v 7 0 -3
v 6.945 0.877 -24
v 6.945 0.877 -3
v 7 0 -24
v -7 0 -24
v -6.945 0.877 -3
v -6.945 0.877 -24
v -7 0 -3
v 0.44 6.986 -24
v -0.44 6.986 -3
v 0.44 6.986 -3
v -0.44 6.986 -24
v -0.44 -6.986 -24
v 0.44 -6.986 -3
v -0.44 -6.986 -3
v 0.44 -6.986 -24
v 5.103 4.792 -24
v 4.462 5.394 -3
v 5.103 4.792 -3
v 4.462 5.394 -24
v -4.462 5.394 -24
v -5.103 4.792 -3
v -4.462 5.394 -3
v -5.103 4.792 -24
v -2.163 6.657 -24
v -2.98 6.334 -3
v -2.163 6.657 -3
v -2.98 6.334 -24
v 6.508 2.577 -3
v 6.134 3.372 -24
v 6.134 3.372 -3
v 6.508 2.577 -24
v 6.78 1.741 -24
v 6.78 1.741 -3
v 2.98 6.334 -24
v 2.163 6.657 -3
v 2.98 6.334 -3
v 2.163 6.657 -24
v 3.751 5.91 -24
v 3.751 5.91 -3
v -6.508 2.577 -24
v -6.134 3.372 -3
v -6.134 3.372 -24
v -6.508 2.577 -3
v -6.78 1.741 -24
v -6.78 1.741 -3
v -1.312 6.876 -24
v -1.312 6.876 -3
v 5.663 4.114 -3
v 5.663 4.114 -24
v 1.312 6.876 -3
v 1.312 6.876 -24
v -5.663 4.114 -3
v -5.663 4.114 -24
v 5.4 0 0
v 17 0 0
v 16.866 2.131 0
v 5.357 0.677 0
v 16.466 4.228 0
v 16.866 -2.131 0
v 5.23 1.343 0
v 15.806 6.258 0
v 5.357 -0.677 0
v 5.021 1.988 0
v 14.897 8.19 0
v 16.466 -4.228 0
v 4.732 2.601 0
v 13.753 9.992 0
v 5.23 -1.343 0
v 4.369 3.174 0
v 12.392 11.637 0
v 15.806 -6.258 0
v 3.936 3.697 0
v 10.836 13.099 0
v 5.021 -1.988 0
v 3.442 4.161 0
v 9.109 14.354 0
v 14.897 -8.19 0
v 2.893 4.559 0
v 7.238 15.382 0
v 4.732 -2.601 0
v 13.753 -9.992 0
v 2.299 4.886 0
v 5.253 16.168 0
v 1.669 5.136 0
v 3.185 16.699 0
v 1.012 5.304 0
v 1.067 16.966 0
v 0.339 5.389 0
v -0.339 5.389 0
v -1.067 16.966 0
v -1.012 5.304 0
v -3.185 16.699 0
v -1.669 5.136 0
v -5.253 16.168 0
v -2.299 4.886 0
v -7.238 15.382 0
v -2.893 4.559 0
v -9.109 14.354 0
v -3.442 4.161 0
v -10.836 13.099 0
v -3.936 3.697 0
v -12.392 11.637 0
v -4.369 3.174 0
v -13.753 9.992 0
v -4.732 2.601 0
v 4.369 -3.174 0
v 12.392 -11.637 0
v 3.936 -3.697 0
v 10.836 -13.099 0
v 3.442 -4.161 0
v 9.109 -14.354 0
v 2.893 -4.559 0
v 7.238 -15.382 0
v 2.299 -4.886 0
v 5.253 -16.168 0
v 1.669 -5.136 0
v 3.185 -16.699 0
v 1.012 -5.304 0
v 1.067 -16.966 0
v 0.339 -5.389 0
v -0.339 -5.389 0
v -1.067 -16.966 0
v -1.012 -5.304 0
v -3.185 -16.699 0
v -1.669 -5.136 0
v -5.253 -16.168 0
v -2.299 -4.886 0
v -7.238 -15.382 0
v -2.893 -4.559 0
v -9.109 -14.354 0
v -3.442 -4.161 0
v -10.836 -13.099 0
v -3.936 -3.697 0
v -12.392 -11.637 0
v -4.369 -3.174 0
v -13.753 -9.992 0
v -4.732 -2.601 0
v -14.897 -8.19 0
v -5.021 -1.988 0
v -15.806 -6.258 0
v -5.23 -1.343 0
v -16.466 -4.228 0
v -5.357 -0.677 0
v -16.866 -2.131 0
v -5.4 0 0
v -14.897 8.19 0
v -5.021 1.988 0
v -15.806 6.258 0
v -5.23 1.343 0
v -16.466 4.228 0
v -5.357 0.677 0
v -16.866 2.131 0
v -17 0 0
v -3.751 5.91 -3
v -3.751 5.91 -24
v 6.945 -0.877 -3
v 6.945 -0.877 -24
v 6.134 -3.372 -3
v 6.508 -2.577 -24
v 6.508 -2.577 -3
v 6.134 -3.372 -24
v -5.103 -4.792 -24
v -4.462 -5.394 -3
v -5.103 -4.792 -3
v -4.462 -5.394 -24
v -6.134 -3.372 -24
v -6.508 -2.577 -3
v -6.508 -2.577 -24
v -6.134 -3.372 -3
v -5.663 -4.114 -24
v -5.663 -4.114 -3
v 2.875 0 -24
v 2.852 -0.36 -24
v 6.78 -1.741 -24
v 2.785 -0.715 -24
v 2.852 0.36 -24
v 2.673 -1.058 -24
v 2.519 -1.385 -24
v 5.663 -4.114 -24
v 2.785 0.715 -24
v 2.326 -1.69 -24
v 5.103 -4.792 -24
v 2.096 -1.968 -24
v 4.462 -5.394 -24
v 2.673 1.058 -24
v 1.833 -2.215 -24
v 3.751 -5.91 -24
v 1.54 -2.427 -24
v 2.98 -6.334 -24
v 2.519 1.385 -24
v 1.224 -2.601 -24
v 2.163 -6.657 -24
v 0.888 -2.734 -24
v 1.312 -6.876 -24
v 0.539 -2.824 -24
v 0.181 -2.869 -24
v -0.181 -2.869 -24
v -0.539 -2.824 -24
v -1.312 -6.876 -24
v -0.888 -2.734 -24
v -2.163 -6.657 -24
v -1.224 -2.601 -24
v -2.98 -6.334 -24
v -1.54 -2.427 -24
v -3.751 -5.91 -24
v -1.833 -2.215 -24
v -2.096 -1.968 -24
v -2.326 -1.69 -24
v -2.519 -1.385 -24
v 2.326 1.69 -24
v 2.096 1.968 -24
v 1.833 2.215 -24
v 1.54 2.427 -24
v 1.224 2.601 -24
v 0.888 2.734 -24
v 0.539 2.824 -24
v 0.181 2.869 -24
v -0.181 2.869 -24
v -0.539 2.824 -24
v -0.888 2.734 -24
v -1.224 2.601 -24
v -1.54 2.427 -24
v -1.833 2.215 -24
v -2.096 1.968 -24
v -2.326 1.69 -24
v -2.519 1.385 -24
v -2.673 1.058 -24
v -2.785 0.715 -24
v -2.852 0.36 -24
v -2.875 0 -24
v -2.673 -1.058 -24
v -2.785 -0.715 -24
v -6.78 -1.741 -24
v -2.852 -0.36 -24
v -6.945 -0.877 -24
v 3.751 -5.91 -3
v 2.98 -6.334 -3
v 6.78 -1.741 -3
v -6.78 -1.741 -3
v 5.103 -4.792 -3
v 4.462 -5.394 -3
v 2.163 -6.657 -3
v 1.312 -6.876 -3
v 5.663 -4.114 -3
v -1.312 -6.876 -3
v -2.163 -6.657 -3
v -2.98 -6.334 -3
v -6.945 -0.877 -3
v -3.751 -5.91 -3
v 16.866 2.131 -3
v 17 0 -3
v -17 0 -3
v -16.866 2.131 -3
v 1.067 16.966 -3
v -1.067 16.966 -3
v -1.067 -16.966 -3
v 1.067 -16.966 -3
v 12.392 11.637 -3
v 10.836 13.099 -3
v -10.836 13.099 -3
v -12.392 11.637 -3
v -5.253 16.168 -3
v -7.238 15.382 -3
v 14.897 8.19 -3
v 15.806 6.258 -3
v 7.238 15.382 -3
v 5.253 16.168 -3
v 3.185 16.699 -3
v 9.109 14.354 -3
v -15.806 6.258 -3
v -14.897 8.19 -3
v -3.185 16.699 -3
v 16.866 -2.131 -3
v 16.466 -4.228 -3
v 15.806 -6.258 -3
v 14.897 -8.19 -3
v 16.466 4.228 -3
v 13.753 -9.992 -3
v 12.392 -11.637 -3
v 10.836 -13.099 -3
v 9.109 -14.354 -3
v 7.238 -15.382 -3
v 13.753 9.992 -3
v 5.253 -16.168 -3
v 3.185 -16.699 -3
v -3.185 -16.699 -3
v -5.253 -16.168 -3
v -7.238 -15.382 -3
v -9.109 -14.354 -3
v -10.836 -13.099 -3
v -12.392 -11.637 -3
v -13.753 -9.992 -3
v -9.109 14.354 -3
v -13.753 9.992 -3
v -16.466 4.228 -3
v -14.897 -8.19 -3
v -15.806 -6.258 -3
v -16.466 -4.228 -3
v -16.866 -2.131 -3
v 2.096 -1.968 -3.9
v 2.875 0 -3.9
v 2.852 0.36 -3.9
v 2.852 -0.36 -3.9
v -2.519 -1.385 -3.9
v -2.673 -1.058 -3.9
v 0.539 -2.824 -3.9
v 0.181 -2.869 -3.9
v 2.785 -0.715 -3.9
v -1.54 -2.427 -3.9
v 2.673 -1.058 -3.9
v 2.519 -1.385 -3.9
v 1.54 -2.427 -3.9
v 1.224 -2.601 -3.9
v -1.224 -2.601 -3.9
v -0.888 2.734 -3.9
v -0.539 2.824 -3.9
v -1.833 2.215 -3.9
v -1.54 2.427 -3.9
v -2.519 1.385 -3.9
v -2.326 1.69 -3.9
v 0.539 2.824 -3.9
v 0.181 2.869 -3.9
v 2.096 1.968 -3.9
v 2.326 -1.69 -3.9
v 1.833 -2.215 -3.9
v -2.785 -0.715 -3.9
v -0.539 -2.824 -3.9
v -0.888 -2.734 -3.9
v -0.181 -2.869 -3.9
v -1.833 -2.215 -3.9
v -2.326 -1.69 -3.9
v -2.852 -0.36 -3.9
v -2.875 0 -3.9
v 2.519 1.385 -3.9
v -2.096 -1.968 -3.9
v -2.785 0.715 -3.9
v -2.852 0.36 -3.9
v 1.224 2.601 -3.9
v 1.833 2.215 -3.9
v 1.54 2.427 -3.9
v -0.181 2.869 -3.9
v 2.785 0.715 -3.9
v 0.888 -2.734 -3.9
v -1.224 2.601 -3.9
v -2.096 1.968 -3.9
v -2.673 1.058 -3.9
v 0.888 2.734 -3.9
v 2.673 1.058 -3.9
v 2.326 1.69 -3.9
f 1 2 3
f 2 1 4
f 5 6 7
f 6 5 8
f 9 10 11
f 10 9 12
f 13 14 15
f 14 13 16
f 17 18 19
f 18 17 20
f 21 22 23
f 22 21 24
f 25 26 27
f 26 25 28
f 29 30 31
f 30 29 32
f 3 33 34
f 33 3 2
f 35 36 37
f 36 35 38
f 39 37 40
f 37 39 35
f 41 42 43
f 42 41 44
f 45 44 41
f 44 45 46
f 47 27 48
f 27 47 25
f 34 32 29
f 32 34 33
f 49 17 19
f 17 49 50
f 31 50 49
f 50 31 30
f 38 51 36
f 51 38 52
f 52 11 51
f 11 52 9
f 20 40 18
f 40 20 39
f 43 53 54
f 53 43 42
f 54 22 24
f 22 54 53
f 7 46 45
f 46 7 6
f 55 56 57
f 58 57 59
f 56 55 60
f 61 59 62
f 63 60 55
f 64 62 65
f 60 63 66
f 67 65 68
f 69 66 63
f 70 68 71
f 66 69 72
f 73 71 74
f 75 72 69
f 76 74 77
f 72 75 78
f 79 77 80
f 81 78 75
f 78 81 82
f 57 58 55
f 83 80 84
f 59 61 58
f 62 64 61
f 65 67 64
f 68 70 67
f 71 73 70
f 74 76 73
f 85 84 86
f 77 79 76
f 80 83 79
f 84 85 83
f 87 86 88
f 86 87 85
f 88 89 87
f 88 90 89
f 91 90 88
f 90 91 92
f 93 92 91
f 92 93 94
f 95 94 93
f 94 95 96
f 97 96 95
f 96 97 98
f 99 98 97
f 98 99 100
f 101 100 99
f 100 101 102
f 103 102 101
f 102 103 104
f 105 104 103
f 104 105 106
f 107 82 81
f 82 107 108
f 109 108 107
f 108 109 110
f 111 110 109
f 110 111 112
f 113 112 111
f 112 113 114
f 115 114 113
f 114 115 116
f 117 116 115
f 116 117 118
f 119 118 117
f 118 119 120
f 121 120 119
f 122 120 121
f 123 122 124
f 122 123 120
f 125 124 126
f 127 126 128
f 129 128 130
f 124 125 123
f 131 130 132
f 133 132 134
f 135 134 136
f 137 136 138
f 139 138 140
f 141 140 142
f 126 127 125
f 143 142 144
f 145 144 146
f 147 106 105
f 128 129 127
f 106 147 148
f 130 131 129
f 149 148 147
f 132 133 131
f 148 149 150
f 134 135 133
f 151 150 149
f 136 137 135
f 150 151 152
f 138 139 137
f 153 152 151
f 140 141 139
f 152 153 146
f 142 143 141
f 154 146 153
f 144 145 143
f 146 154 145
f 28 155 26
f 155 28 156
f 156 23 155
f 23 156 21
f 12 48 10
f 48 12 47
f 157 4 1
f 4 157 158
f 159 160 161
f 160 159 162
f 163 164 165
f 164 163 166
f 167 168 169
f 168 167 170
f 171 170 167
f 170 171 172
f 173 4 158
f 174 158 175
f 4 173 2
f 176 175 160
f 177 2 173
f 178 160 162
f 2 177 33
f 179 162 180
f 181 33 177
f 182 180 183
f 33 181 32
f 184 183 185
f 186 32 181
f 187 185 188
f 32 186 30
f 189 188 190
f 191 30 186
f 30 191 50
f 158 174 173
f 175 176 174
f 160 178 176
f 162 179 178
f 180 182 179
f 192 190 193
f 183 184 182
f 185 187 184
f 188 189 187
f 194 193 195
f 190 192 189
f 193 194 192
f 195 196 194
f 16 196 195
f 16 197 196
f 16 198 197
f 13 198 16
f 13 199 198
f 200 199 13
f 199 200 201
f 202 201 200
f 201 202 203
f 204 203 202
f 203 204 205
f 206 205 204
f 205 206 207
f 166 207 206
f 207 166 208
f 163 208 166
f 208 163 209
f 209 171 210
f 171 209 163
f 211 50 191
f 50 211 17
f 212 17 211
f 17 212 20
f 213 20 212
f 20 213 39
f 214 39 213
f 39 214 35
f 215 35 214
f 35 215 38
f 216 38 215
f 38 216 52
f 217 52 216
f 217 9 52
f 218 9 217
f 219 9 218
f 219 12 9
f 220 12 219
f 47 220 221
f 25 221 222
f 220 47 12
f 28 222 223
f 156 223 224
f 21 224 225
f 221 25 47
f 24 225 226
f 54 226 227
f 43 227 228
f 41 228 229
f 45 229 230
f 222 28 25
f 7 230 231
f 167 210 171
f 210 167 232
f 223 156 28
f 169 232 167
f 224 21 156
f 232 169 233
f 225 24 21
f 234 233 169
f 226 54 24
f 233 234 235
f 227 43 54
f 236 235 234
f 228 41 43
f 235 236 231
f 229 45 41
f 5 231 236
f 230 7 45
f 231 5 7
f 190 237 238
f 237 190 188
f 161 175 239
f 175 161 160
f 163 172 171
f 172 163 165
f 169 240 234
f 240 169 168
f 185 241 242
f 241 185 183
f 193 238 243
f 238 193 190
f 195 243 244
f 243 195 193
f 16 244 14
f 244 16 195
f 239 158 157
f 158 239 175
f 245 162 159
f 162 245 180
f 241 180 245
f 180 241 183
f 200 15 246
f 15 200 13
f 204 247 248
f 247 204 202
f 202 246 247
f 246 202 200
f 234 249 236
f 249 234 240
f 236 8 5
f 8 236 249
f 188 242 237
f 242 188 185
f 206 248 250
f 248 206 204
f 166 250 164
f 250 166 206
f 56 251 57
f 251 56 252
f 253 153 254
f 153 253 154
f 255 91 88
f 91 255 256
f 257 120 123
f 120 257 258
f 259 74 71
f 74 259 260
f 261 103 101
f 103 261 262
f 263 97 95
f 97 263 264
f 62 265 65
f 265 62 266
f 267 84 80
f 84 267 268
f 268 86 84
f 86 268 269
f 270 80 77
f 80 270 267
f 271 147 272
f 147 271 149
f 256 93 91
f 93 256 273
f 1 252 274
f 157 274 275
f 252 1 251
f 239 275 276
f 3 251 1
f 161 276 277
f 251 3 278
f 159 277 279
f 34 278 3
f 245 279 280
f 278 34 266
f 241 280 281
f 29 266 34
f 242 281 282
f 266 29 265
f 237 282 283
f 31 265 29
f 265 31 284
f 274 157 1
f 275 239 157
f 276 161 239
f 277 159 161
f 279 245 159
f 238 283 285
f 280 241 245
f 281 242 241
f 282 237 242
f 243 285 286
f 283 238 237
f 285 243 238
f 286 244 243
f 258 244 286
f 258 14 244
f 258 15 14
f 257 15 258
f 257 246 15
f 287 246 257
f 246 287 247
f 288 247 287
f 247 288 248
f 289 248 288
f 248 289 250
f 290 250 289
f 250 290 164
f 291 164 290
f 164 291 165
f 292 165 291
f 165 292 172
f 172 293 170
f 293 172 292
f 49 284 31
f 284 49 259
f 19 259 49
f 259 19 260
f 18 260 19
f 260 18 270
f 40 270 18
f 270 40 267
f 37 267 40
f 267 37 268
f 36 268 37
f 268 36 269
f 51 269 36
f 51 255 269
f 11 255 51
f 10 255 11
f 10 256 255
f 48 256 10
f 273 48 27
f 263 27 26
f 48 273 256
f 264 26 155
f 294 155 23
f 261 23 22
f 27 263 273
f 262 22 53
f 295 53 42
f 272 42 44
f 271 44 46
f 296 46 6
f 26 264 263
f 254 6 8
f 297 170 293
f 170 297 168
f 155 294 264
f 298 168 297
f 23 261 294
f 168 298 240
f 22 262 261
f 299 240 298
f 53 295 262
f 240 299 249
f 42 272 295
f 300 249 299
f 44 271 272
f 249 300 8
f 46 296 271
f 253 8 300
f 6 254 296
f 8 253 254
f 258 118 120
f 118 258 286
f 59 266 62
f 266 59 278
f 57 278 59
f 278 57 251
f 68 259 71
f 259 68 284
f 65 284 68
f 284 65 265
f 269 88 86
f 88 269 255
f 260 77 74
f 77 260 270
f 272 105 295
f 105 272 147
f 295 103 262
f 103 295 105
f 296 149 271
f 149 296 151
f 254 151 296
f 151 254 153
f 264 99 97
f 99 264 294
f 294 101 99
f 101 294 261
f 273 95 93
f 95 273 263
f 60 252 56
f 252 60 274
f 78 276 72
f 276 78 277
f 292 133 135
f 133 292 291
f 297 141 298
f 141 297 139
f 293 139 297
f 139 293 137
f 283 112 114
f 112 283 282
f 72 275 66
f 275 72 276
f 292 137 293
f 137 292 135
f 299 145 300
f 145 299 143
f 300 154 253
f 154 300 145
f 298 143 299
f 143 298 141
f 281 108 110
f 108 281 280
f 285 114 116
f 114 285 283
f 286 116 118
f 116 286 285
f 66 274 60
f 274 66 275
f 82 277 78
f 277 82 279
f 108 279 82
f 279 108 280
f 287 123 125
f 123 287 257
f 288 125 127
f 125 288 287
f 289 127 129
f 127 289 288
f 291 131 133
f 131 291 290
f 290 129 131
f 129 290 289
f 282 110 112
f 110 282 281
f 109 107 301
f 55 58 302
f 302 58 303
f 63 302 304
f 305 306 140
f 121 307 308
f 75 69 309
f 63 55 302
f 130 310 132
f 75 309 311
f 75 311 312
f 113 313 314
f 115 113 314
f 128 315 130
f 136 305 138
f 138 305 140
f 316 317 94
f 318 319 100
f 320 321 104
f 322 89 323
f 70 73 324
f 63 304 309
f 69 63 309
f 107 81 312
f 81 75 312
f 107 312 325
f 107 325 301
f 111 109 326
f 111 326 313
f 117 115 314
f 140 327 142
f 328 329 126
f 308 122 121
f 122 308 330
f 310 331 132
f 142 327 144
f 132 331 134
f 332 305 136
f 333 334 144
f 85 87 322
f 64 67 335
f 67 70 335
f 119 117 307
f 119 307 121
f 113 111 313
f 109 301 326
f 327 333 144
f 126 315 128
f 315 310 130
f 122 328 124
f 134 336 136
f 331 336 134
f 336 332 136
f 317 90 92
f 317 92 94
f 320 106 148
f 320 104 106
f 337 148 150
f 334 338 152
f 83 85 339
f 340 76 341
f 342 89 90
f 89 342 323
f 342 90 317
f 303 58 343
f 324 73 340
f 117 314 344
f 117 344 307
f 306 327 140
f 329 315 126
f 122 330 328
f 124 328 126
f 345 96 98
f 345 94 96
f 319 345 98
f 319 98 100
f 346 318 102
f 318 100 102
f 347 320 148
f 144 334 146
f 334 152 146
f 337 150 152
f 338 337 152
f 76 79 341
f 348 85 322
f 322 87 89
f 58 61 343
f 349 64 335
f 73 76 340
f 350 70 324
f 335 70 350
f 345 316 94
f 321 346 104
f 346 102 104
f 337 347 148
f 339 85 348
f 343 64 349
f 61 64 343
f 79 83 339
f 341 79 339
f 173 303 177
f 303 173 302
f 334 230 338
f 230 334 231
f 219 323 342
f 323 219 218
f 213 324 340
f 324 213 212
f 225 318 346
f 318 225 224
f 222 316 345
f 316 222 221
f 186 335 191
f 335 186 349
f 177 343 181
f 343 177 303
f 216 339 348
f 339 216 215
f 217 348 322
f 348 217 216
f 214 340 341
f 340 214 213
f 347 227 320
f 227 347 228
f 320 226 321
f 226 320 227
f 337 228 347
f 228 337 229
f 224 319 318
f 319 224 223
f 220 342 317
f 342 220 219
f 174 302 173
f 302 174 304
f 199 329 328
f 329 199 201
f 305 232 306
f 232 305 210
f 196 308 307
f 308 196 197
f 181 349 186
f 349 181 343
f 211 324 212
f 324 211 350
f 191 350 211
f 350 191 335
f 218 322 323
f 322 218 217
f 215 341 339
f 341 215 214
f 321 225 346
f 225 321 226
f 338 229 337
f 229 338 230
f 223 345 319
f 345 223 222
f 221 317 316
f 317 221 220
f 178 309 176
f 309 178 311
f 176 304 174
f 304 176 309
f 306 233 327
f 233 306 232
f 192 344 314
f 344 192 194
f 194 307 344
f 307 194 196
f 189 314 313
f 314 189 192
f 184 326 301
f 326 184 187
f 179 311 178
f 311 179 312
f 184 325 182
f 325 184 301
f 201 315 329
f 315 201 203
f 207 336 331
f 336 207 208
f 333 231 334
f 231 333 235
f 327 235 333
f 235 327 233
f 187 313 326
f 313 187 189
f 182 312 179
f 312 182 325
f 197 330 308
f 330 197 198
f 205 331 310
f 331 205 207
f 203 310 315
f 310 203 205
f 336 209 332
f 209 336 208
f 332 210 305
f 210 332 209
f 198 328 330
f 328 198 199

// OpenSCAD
$fn = 50;


difference() {
	union() {
		translate(v = [0, 0, -24.0000000000]) {
			cylinder(h = 24, r = 7.0000000000);
		}
		translate(v = [0, 0, -3.0000000000]) {
			cylinder(h = 3, r = 17.0000000000);
		}
	}
	union() {
		translate(v = [0, 0, 0]) {
			rotate(a = [0, 0, 0]) {
				difference() {
					union() {
						#translate(v = [0, 0, -24.0000000000]) {
							cylinder(h = 24, r = 2.6000000000);
						}
						#translate(v = [0, 0, -3.9000000000]) {
							cylinder(h = 3.9000000000, r1 = 2.8750000000, r2 = 5.4000000000);
						}
						#translate(v = [0, 0, -24.0000000000]) {
							cylinder(h = 24, r = 2.8750000000);
						}
						#translate(v = [0, 0, -24.0000000000]) {
							cylinder(h = 24, r = 2.6000000000);
						}
					}
					union();
				}
			}
		}
	}
}
